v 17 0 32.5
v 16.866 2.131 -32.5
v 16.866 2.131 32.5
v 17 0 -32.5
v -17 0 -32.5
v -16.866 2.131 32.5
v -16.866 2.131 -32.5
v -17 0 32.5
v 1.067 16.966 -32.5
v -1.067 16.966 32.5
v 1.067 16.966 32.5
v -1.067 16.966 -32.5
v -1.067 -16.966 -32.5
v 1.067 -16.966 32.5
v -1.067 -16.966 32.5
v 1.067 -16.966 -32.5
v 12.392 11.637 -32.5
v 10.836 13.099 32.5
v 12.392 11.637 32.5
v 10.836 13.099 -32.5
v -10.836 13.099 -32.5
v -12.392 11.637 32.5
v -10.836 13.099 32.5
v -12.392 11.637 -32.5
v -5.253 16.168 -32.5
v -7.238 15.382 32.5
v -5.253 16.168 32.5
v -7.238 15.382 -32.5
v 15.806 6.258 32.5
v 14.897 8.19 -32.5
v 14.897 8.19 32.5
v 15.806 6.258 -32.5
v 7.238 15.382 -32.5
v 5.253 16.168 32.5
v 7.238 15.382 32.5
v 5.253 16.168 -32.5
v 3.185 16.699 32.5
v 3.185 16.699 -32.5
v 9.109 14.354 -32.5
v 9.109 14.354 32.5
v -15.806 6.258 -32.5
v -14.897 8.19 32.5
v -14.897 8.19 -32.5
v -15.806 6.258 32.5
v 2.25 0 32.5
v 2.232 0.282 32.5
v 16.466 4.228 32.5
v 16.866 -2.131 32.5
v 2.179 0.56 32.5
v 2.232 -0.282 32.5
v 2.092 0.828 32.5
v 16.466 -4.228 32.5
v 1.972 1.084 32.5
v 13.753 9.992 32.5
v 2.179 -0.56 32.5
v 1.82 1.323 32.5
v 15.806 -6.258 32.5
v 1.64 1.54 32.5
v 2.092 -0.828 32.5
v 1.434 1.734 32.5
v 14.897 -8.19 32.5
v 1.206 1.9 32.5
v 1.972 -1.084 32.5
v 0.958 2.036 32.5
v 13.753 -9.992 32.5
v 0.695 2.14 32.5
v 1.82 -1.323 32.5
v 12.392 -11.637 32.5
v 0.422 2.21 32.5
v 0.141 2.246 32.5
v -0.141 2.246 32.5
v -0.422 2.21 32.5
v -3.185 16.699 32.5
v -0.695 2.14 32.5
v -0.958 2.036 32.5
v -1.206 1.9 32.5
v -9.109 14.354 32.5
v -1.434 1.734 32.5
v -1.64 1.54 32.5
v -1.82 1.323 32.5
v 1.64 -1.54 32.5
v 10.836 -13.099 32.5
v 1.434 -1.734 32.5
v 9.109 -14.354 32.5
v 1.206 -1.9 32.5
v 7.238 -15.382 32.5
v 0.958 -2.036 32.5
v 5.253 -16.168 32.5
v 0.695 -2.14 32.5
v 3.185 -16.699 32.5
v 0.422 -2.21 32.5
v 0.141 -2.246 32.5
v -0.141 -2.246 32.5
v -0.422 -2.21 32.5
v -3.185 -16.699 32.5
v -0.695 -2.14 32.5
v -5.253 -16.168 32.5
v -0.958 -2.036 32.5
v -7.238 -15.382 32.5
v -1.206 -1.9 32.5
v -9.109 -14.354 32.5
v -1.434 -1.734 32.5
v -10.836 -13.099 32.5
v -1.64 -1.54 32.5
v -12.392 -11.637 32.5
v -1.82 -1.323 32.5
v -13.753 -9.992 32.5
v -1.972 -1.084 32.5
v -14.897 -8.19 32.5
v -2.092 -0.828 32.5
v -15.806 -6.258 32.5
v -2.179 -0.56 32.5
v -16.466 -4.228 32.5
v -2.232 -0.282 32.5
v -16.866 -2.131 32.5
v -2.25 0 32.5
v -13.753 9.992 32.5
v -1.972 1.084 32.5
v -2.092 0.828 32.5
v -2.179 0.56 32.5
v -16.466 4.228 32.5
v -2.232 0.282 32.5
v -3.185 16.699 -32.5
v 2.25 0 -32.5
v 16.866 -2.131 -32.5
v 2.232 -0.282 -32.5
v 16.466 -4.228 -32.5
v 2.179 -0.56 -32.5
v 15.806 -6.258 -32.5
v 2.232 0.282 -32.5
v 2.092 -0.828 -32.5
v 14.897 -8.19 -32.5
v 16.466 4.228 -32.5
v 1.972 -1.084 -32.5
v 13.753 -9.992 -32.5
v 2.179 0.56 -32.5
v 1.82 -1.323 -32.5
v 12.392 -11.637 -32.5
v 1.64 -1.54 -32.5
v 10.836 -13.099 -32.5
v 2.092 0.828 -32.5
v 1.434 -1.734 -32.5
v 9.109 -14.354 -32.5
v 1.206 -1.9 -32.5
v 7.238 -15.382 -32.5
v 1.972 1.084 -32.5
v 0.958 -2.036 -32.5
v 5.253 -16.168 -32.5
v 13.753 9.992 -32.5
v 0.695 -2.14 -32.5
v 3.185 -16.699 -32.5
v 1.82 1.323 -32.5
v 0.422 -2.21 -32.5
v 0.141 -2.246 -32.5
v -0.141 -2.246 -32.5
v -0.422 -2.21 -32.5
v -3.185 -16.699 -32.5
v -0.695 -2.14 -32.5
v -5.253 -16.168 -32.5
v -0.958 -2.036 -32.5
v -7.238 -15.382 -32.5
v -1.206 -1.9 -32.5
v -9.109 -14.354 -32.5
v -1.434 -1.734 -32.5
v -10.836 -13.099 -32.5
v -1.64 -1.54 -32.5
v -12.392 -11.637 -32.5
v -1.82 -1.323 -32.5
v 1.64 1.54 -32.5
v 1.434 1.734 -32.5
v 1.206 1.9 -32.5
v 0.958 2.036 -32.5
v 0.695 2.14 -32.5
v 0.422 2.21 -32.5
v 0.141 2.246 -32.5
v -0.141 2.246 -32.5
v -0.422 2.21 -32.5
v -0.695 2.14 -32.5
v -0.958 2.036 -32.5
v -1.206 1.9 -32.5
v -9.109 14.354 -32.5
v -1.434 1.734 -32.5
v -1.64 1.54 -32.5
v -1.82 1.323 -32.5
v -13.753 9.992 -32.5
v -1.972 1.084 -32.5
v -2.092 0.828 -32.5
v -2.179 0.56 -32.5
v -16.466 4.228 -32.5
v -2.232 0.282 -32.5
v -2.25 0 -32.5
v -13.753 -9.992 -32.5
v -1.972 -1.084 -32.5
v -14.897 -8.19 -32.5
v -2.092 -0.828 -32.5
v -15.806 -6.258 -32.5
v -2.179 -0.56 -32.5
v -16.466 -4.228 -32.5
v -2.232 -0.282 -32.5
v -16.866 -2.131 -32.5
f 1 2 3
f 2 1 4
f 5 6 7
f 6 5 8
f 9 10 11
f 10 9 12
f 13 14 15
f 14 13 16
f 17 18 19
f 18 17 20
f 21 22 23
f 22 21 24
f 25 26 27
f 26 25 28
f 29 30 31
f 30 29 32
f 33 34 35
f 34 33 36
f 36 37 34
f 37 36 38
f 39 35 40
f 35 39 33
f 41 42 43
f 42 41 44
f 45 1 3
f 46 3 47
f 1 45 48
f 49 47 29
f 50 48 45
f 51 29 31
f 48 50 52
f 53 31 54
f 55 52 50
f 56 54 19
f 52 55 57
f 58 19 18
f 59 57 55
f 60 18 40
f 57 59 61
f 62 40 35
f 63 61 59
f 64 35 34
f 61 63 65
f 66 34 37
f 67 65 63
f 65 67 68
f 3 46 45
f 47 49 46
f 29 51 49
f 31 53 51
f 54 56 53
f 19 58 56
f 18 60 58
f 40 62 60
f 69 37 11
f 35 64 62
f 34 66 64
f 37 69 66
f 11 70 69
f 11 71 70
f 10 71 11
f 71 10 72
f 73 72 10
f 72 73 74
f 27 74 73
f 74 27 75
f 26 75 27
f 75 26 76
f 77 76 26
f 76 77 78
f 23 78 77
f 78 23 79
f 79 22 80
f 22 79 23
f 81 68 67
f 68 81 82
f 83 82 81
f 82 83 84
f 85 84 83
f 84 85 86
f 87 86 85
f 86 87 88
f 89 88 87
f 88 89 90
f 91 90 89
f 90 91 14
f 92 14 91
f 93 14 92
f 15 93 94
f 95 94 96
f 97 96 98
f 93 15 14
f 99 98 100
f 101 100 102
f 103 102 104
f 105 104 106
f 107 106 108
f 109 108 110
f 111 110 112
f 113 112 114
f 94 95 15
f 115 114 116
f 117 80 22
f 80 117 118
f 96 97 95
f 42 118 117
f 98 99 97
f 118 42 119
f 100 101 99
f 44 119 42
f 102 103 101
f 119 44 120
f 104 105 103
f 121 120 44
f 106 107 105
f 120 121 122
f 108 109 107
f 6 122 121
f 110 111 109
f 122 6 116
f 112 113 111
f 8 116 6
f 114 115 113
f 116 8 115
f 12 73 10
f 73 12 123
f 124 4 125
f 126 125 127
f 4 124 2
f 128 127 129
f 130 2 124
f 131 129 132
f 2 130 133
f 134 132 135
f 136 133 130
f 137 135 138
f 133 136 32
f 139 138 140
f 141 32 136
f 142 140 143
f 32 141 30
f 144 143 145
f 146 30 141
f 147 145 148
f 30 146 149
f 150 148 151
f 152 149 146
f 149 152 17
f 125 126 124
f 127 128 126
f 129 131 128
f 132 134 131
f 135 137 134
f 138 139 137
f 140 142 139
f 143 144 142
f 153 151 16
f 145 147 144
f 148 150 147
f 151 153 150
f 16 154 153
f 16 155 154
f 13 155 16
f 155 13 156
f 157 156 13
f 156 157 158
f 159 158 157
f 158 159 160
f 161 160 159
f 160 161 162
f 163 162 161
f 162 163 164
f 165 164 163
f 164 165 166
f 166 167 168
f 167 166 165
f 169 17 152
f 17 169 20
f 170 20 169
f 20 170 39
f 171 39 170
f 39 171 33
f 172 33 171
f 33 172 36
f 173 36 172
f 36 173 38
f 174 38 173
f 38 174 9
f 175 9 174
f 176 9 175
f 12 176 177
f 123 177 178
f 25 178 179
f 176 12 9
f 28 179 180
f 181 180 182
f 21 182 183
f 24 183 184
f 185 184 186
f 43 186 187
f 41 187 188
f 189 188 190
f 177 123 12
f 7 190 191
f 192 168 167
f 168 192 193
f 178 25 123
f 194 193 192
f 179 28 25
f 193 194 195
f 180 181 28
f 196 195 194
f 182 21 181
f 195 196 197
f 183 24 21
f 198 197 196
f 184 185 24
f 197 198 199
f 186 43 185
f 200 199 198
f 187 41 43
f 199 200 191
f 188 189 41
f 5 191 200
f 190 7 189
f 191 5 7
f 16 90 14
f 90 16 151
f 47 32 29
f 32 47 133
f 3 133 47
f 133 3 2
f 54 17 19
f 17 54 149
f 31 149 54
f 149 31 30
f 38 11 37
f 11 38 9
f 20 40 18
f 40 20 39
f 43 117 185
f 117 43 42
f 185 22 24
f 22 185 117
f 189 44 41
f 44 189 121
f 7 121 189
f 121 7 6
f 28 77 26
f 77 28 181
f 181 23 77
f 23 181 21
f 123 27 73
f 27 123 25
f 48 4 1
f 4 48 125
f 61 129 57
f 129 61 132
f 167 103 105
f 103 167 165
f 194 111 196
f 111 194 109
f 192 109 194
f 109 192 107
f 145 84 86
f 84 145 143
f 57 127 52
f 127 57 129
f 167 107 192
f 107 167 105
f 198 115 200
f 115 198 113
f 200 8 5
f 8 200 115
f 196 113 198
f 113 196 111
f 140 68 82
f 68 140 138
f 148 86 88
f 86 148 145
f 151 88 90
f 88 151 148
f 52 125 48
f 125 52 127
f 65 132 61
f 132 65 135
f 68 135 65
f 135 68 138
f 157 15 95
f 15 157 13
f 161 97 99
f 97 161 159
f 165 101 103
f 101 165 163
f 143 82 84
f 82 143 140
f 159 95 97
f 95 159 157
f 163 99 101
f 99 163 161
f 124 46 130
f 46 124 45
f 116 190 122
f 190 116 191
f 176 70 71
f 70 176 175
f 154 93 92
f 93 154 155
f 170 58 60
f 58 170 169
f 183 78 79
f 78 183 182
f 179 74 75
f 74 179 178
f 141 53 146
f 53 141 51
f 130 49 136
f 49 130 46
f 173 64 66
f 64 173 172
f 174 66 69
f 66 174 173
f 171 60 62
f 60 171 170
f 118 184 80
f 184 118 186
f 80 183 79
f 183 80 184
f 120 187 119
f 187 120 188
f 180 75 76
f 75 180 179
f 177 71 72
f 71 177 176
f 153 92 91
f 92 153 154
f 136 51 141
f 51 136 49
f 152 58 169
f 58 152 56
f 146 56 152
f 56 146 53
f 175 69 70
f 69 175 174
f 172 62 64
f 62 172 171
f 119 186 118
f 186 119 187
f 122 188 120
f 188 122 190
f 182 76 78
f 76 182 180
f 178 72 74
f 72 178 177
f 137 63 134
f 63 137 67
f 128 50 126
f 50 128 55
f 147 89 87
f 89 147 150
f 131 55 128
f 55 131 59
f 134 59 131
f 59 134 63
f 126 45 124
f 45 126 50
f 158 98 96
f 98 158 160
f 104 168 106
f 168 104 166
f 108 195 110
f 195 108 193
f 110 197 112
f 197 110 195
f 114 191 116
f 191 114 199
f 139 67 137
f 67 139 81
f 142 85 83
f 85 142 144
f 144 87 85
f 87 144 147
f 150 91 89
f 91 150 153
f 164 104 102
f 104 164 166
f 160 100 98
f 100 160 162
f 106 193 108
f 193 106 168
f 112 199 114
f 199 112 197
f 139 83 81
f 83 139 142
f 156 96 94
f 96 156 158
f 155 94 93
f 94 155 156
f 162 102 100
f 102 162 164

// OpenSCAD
$fn = 50;


difference() {
	union() {
		translate(v = [0, 0, -32.5000000000]) {
			cylinder(h = 65, r = 17.0000000000);
		}
	}
	union() {
		translate(v = [0, 0, -100.0000000000]) {
			cylinder(h = 200, r = 2.2500000000);
		}
	}
}
